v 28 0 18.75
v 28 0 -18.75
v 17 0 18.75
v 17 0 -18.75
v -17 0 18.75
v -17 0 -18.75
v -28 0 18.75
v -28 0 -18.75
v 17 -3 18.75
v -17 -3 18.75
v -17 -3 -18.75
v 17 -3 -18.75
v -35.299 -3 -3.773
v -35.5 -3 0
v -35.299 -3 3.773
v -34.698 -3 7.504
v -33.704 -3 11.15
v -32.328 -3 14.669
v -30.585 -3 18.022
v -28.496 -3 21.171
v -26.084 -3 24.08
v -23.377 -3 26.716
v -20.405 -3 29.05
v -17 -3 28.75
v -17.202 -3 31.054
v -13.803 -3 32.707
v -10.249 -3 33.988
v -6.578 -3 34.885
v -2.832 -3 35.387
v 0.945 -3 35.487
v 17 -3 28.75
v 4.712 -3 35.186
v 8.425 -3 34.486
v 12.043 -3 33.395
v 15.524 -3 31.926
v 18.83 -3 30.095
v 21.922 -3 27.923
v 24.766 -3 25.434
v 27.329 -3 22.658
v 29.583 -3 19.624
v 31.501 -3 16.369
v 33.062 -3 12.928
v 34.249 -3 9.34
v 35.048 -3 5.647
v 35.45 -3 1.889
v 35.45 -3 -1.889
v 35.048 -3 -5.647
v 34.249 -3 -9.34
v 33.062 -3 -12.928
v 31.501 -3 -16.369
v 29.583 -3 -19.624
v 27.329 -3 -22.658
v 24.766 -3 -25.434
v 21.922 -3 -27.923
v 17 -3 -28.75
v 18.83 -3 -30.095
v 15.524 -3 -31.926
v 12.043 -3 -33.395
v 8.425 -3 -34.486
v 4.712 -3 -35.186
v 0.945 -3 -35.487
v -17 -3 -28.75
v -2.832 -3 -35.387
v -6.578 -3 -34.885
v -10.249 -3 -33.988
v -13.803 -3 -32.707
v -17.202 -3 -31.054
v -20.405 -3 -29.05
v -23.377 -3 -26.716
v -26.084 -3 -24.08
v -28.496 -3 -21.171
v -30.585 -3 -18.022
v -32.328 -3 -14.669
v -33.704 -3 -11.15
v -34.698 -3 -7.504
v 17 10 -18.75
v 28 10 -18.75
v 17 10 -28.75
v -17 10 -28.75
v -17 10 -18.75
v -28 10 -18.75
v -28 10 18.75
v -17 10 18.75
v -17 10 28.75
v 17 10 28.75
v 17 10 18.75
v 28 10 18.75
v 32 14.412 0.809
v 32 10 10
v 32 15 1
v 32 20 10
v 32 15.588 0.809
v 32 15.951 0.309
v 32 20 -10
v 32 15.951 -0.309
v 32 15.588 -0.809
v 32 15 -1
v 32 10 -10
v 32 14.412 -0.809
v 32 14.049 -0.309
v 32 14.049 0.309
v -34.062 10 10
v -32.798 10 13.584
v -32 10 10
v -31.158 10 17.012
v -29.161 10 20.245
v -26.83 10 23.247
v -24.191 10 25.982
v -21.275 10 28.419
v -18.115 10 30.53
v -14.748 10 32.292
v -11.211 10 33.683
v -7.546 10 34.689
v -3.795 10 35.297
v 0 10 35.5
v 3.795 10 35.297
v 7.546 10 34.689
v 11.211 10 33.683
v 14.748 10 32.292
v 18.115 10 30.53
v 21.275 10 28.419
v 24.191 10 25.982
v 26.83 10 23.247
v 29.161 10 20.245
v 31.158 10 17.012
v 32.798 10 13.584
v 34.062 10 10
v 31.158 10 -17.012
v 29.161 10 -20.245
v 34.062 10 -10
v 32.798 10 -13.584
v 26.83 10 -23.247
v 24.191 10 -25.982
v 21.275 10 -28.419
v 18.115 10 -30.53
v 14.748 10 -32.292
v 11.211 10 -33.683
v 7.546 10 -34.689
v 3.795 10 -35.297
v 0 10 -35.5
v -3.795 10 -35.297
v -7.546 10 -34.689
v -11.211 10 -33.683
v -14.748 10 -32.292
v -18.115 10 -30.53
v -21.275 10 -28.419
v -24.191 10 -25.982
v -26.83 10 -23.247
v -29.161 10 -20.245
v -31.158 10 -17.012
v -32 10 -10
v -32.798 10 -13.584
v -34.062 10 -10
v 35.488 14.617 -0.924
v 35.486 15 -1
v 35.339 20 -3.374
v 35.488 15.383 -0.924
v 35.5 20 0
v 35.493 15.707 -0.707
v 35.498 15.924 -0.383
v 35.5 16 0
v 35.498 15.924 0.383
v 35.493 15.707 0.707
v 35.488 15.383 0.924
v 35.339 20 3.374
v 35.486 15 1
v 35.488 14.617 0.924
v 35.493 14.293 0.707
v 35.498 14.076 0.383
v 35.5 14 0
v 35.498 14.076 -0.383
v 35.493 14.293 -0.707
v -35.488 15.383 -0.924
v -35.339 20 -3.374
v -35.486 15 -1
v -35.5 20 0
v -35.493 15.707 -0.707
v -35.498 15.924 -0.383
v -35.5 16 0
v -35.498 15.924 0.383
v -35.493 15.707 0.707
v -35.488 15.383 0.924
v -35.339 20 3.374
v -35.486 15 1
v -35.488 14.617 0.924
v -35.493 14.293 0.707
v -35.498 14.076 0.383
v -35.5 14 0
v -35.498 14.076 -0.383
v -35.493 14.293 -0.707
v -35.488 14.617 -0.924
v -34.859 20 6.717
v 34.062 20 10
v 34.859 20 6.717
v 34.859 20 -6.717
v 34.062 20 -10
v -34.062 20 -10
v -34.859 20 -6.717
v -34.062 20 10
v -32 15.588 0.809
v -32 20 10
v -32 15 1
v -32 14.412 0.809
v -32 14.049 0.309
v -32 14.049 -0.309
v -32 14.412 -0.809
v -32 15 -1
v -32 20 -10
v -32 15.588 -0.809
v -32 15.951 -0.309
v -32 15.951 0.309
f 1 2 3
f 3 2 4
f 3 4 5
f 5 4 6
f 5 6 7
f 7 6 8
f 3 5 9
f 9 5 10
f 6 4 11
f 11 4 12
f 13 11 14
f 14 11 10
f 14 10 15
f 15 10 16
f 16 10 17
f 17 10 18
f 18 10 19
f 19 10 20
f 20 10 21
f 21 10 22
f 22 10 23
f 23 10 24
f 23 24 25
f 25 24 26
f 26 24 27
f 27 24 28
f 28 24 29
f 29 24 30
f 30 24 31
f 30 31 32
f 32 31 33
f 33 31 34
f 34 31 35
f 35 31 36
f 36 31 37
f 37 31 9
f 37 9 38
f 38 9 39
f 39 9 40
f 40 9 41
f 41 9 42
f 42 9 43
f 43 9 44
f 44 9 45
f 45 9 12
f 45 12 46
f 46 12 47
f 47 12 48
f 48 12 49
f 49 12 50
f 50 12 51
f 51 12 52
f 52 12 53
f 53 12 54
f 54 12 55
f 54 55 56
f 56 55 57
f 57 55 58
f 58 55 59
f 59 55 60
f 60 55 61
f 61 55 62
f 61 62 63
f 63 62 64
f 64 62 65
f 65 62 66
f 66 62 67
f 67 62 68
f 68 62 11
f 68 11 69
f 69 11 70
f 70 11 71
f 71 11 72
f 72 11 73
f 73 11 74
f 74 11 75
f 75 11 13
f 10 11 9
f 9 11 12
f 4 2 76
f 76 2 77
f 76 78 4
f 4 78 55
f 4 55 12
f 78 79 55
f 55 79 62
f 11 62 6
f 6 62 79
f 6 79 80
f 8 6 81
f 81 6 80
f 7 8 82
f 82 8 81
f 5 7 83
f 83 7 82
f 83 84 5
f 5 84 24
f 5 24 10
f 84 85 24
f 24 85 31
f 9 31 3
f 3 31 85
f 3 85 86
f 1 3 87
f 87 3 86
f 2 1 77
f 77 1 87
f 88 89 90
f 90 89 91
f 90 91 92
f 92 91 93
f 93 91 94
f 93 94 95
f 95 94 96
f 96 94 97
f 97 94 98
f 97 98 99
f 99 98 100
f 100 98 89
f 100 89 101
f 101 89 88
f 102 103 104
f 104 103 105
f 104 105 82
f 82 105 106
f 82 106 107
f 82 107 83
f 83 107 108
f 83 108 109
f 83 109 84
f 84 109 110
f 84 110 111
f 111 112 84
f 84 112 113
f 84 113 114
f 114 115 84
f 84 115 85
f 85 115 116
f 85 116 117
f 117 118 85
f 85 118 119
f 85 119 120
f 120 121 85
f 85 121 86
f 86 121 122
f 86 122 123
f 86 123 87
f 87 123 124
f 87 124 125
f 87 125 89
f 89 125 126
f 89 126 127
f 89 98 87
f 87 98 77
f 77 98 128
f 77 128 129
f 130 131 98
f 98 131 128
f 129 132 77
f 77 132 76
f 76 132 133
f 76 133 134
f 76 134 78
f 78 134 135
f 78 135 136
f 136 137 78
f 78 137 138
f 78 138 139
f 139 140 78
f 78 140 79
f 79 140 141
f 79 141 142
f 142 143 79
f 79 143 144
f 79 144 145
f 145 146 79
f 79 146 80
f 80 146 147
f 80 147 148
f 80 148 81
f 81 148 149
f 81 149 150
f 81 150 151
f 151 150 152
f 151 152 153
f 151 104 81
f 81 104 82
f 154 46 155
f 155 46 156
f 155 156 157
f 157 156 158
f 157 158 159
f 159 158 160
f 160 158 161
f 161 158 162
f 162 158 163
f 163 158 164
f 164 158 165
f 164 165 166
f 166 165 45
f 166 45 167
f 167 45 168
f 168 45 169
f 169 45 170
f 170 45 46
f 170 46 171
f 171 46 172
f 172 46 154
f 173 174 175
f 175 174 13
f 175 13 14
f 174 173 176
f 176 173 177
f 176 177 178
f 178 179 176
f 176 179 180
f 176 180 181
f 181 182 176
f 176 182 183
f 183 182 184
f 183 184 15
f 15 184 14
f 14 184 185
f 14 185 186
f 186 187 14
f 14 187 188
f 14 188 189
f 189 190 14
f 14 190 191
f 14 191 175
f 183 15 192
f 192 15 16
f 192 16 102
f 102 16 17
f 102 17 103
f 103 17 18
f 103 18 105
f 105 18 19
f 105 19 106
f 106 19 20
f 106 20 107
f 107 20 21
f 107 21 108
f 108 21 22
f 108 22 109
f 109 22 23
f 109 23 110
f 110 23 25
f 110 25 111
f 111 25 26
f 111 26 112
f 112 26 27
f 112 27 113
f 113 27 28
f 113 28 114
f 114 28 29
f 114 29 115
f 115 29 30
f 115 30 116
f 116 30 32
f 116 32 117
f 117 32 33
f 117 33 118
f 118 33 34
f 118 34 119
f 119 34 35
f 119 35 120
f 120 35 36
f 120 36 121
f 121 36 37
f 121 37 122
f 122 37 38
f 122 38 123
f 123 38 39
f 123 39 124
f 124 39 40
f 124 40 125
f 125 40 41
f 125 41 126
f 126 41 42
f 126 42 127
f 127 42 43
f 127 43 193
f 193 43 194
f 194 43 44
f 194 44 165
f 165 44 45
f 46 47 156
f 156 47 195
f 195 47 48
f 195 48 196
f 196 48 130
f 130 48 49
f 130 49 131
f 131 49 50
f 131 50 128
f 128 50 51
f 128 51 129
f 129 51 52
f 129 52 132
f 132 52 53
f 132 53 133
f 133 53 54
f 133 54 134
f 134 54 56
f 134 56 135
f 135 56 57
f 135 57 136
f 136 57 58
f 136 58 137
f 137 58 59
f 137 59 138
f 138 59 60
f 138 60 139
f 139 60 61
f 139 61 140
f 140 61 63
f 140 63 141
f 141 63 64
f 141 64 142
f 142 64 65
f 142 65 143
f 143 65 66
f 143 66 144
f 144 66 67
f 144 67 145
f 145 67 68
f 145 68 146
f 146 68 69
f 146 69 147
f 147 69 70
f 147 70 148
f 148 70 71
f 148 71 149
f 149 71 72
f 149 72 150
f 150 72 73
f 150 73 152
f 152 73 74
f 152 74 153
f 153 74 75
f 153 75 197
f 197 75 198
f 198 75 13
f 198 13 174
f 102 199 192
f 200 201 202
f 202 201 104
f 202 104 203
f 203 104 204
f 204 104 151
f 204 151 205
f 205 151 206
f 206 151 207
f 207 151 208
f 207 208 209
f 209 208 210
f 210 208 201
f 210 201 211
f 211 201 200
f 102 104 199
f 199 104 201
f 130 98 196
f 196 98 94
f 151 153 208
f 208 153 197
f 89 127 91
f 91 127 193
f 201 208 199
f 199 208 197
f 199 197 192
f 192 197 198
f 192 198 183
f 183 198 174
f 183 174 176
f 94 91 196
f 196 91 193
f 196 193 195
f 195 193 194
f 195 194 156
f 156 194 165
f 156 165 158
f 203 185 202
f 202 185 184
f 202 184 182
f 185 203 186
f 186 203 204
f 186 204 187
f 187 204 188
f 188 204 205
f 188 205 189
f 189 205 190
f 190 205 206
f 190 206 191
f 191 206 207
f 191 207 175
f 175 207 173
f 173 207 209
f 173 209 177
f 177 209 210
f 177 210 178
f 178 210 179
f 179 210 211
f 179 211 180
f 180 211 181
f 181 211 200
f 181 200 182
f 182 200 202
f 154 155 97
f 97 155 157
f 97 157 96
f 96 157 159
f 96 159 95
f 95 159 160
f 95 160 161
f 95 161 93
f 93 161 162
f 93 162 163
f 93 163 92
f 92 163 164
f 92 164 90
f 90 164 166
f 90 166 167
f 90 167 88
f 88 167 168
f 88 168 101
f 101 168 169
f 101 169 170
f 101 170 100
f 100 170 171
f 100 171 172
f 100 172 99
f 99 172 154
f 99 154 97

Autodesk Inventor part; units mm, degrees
ref_plane "YZ Plane" through (0, 0, 0) normal (1, 0, 0) x (0, 1, 0)
ref_plane "XZ Plane" through (0, 0, 0) normal (0, 1, 0) x (-1, 0, 0)
ref_plane "XY Plane" through (0, 0, 0) normal (0, 0, 1) x (1, 0, 0)
sketch "Szkic1" plane through (0, 0, 0) normal (0, 1, 0) x (-1, 0, 0)
  circle A0 centre (0, 0) radius 35.5
  line L0 (0, 18.75) -> (0, -18.75) construction
  line L1 (-28, 0) -> (28, 0) construction
  line L2 (-28, -18.75) -> (28, -18.75)
  line L3 (-28, 18.75) -> (-28, -18.75)
  line L4 (28, 18.75) -> (28, -18.75)
  line L5 (0, 18.75) -> (28, 18.75)
  line L6 (0, 18.75) -> (-28, 18.75)
  line L7 (0, 18.75) -> (0, 28.75) construction
  line L8 (17, 28.75) -> (-17, 28.75)
  line L9 (17, 28.75) -> (17, 18.75)
  line L10 (-17, 28.75) -> (-17, 18.75)
  line L11 (0, -18.75) -> (0, -28.75) construction
  line L12 (-17, -28.75) -> (17, -28.75)
  line L13 (17, -28.75) -> (17, -18.75)
  line L14 (-17, -28.75) -> (-17, -18.75)
  point P0 (0, 0)
  dimension "d0" = 71
  dimension "d1" = 37.5
  dimension "d2" = 56
  dimension "d3" = 10
  dimension "d4" = 34
  dimension "d5" = 10
  dimension "d6" = 34
extrude "Wyciągnięcie proste1" add sketch "Szkic1" along normal blind 10
extrude "Wyciągnięcie proste2" add sketch "Szkic1" against normal blind 3 contours A0 | L3 L6 L5 L4 L2
sketch "Szkic2" plane through (0, 10, 0) normal (0, 1, 0) x (1, 0, 0)
  line L0 (32, 0) -> (-32, 0) construction
  circle A0 centre (0, 0) radius 35.5
  line L1 (-32, -10) -> (-32, 10)
  line L2 (32, -10) -> (32, 10)
  line L3 (32, -10) -> (34.0624, -10)
  line L4 (32, 10) -> (34.0624, 10)
  line L5 (-32, -10) -> (-34.0624, -10)
  line L6 (-32, 10) -> (-34.0624, 10)
  point P0 (0, 0)
  dimension "d11" = 64
  dimension "d12" = 71
  dimension "d13" = 20
  dimension "d14" = 20
extrude "Wyciągnięcie proste3" add sketch "Szkic2" along normal blind 10 contours A0 L3 L2 L4 | L6 L1 L5 A0
sketch "Szkic3" plane through (-32, 10, 10) normal (1, 0, 0) x (0, 0, -1)
  line L0 (0, 0) -> (10, 0) construction
  line L1 (10, 0) -> (10, 5) construction
  circle A0 centre (10, 5) radius 1
  point P0 (10, -10)
  dimension "d17" = 10
  dimension "d18" = 5
  dimension "d19" = 0
  dimension "d20" = 10
  dimension "d21" = 2
extrude "Wyciągnięcie proste4" cut sketch "Szkic3" along normal through all both and the other way through all
properties part number "007-002"
